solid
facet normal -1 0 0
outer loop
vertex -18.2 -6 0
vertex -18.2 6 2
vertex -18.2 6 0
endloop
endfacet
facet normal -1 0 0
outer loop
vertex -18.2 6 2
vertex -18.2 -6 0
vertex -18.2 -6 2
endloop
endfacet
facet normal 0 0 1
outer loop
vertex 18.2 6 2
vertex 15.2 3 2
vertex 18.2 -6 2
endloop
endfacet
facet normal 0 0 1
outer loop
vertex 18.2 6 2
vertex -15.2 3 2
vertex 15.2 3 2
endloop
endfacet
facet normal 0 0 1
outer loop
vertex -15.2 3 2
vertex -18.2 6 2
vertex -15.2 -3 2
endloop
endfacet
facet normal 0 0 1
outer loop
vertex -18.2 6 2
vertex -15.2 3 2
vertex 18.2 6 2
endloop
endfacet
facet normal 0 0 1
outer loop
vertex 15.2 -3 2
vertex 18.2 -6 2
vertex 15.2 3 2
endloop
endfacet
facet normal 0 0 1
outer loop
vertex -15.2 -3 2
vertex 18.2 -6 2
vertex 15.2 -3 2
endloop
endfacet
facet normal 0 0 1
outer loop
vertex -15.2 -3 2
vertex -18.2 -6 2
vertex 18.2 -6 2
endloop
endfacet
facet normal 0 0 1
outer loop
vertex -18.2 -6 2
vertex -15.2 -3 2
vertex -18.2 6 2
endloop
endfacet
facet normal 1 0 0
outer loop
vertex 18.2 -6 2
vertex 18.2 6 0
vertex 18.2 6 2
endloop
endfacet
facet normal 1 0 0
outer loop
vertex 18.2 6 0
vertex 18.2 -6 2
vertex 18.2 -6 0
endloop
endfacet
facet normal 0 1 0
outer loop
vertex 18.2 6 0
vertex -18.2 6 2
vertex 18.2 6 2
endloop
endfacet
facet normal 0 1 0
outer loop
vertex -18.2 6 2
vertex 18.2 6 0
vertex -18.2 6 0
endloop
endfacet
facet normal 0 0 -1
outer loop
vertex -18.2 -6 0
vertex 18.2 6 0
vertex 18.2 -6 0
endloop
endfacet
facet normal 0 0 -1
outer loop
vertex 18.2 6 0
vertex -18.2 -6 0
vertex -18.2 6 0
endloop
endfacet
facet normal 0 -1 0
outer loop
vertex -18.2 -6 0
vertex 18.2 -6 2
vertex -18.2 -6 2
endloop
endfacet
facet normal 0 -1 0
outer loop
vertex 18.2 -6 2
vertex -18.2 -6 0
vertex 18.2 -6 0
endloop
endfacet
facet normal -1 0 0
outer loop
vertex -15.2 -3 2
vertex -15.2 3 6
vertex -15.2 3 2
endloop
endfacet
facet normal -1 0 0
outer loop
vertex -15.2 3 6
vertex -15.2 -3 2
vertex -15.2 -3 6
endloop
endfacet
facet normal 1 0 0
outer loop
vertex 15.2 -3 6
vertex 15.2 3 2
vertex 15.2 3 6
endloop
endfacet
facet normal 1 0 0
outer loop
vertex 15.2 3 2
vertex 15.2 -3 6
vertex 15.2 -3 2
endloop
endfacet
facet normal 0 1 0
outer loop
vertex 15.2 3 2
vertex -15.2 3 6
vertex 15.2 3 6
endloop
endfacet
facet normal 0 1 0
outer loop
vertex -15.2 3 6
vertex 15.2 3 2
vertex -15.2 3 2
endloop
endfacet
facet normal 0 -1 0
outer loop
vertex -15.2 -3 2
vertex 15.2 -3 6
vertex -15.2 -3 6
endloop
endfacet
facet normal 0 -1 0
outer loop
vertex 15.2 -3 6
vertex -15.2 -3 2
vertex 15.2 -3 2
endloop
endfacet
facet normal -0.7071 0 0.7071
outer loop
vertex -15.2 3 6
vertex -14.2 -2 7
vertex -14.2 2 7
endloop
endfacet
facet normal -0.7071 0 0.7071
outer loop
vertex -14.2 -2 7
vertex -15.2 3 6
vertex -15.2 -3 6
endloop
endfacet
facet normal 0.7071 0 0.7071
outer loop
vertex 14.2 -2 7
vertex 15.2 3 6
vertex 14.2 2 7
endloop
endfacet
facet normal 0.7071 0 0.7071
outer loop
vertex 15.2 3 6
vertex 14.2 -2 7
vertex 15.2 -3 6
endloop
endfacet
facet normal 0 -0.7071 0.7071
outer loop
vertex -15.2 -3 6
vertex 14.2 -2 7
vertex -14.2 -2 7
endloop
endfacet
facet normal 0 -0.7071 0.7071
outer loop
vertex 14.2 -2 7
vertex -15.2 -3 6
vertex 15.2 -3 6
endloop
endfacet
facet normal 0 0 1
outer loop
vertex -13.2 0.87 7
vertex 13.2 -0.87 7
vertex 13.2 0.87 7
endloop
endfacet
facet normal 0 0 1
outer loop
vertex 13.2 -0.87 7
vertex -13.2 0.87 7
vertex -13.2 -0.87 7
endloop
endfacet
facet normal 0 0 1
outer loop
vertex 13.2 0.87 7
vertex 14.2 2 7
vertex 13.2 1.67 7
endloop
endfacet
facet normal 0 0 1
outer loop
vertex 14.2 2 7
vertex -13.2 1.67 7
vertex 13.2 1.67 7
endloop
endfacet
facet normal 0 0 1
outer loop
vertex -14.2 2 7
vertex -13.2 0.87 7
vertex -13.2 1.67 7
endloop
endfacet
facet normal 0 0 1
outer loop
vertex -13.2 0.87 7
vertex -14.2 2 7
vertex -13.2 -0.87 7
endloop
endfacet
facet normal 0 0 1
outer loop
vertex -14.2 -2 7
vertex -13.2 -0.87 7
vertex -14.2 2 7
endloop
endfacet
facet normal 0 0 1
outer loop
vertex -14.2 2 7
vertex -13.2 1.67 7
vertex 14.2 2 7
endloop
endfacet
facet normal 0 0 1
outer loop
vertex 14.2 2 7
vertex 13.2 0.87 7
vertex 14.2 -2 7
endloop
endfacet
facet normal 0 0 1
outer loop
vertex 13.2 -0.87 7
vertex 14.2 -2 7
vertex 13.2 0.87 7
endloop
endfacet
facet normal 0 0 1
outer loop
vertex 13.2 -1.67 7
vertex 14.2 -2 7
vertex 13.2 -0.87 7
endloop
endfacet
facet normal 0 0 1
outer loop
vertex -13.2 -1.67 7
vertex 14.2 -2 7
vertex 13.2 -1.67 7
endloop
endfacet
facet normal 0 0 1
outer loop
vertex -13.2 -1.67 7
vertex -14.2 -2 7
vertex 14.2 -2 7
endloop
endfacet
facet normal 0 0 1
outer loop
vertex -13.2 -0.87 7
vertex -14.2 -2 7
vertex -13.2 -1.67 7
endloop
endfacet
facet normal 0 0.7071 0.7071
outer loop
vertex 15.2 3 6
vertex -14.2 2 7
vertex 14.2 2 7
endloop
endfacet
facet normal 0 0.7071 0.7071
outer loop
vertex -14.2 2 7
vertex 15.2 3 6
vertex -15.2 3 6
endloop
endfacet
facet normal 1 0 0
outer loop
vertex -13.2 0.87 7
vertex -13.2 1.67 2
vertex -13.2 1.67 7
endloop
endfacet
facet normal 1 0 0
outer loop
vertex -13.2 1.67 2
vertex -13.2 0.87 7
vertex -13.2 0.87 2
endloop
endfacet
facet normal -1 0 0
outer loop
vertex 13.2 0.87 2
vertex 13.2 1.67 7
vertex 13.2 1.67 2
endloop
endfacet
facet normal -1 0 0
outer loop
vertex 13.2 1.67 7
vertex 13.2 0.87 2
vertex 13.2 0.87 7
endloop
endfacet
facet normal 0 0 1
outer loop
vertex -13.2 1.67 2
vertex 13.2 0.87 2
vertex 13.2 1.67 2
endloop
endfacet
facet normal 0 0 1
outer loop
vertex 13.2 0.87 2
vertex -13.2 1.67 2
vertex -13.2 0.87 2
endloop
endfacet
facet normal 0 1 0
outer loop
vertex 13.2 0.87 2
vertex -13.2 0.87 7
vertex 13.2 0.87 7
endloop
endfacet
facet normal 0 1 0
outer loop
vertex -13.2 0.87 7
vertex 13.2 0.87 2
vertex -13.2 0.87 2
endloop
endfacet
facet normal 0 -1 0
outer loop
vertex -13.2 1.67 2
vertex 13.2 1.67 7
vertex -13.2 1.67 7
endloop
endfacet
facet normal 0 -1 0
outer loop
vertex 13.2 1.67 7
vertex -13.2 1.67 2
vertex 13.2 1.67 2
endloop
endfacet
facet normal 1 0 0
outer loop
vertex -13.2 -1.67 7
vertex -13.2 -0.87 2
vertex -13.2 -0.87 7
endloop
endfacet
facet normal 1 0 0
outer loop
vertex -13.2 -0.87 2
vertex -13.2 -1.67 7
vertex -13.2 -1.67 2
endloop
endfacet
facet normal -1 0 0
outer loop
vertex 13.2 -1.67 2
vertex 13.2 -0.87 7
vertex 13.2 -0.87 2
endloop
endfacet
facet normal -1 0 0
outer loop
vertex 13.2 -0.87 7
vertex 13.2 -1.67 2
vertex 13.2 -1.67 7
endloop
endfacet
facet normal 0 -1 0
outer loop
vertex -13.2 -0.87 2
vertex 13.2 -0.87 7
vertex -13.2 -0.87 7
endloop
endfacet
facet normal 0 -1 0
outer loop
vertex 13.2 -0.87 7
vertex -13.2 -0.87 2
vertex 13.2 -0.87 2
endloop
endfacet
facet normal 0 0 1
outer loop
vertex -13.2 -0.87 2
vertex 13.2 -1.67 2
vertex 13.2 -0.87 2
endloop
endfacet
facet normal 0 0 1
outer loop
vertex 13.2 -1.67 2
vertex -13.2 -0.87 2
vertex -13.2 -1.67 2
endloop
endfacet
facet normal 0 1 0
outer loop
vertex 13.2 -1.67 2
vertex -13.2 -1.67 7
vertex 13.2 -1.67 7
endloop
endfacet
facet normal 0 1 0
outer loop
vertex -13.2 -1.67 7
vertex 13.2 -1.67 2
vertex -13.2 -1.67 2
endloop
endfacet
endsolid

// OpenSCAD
inner_width = 30.4;
inner_height = 6.0;
inner_depth = 5.0;
outer_width = inner_width + 6.0;
outer_height = inner_height + 6.0;
outer_depth = 2.0;
pin_width = 0.8;
pin_pitch = 2.54;
bevel = 1.0;

$fs = 0.01;

module pyramid(w,h,d,b) {
    polyhedron(
        points=[[0,0,0],[w,0,0],[w,h,0],[0,h,0],
                [b,b,d],[w-b,b,d],[w-b,h-b,d],[b,h-b,d]],
        faces=[[0,1,2,3],[4,5,1,0],[7,6,5,4],[5,6,2,1],[6,7,3,2],[7,4,0,3]]
    );
}

color("gray") {
    difference() {
        union() {
            translate([-outer_width/2,-outer_height/2,0]) {
                cube([outer_width,outer_height,outer_depth]);
            }
            translate([-inner_width/2,-inner_height/2,outer_depth-bevel]) {
                cube([inner_width,inner_height,inner_depth]);
            }
            translate([-inner_width/2,-inner_height/2,outer_depth+inner_depth-bevel]) {
                pyramid(inner_width,inner_height,bevel,bevel);
            }
        }
        translate([(-inner_width/2)+2,(pin_pitch-pin_width)/2,outer_depth]) {
            cube([inner_width-4,pin_width,outer_depth+inner_depth+1]);
        }
        translate([(-inner_width/2)+2,-(pin_pitch+pin_width)/2,outer_depth]) {
            cube([inner_width-4,pin_width,outer_depth+inner_depth+1]);
        }
    }
}
